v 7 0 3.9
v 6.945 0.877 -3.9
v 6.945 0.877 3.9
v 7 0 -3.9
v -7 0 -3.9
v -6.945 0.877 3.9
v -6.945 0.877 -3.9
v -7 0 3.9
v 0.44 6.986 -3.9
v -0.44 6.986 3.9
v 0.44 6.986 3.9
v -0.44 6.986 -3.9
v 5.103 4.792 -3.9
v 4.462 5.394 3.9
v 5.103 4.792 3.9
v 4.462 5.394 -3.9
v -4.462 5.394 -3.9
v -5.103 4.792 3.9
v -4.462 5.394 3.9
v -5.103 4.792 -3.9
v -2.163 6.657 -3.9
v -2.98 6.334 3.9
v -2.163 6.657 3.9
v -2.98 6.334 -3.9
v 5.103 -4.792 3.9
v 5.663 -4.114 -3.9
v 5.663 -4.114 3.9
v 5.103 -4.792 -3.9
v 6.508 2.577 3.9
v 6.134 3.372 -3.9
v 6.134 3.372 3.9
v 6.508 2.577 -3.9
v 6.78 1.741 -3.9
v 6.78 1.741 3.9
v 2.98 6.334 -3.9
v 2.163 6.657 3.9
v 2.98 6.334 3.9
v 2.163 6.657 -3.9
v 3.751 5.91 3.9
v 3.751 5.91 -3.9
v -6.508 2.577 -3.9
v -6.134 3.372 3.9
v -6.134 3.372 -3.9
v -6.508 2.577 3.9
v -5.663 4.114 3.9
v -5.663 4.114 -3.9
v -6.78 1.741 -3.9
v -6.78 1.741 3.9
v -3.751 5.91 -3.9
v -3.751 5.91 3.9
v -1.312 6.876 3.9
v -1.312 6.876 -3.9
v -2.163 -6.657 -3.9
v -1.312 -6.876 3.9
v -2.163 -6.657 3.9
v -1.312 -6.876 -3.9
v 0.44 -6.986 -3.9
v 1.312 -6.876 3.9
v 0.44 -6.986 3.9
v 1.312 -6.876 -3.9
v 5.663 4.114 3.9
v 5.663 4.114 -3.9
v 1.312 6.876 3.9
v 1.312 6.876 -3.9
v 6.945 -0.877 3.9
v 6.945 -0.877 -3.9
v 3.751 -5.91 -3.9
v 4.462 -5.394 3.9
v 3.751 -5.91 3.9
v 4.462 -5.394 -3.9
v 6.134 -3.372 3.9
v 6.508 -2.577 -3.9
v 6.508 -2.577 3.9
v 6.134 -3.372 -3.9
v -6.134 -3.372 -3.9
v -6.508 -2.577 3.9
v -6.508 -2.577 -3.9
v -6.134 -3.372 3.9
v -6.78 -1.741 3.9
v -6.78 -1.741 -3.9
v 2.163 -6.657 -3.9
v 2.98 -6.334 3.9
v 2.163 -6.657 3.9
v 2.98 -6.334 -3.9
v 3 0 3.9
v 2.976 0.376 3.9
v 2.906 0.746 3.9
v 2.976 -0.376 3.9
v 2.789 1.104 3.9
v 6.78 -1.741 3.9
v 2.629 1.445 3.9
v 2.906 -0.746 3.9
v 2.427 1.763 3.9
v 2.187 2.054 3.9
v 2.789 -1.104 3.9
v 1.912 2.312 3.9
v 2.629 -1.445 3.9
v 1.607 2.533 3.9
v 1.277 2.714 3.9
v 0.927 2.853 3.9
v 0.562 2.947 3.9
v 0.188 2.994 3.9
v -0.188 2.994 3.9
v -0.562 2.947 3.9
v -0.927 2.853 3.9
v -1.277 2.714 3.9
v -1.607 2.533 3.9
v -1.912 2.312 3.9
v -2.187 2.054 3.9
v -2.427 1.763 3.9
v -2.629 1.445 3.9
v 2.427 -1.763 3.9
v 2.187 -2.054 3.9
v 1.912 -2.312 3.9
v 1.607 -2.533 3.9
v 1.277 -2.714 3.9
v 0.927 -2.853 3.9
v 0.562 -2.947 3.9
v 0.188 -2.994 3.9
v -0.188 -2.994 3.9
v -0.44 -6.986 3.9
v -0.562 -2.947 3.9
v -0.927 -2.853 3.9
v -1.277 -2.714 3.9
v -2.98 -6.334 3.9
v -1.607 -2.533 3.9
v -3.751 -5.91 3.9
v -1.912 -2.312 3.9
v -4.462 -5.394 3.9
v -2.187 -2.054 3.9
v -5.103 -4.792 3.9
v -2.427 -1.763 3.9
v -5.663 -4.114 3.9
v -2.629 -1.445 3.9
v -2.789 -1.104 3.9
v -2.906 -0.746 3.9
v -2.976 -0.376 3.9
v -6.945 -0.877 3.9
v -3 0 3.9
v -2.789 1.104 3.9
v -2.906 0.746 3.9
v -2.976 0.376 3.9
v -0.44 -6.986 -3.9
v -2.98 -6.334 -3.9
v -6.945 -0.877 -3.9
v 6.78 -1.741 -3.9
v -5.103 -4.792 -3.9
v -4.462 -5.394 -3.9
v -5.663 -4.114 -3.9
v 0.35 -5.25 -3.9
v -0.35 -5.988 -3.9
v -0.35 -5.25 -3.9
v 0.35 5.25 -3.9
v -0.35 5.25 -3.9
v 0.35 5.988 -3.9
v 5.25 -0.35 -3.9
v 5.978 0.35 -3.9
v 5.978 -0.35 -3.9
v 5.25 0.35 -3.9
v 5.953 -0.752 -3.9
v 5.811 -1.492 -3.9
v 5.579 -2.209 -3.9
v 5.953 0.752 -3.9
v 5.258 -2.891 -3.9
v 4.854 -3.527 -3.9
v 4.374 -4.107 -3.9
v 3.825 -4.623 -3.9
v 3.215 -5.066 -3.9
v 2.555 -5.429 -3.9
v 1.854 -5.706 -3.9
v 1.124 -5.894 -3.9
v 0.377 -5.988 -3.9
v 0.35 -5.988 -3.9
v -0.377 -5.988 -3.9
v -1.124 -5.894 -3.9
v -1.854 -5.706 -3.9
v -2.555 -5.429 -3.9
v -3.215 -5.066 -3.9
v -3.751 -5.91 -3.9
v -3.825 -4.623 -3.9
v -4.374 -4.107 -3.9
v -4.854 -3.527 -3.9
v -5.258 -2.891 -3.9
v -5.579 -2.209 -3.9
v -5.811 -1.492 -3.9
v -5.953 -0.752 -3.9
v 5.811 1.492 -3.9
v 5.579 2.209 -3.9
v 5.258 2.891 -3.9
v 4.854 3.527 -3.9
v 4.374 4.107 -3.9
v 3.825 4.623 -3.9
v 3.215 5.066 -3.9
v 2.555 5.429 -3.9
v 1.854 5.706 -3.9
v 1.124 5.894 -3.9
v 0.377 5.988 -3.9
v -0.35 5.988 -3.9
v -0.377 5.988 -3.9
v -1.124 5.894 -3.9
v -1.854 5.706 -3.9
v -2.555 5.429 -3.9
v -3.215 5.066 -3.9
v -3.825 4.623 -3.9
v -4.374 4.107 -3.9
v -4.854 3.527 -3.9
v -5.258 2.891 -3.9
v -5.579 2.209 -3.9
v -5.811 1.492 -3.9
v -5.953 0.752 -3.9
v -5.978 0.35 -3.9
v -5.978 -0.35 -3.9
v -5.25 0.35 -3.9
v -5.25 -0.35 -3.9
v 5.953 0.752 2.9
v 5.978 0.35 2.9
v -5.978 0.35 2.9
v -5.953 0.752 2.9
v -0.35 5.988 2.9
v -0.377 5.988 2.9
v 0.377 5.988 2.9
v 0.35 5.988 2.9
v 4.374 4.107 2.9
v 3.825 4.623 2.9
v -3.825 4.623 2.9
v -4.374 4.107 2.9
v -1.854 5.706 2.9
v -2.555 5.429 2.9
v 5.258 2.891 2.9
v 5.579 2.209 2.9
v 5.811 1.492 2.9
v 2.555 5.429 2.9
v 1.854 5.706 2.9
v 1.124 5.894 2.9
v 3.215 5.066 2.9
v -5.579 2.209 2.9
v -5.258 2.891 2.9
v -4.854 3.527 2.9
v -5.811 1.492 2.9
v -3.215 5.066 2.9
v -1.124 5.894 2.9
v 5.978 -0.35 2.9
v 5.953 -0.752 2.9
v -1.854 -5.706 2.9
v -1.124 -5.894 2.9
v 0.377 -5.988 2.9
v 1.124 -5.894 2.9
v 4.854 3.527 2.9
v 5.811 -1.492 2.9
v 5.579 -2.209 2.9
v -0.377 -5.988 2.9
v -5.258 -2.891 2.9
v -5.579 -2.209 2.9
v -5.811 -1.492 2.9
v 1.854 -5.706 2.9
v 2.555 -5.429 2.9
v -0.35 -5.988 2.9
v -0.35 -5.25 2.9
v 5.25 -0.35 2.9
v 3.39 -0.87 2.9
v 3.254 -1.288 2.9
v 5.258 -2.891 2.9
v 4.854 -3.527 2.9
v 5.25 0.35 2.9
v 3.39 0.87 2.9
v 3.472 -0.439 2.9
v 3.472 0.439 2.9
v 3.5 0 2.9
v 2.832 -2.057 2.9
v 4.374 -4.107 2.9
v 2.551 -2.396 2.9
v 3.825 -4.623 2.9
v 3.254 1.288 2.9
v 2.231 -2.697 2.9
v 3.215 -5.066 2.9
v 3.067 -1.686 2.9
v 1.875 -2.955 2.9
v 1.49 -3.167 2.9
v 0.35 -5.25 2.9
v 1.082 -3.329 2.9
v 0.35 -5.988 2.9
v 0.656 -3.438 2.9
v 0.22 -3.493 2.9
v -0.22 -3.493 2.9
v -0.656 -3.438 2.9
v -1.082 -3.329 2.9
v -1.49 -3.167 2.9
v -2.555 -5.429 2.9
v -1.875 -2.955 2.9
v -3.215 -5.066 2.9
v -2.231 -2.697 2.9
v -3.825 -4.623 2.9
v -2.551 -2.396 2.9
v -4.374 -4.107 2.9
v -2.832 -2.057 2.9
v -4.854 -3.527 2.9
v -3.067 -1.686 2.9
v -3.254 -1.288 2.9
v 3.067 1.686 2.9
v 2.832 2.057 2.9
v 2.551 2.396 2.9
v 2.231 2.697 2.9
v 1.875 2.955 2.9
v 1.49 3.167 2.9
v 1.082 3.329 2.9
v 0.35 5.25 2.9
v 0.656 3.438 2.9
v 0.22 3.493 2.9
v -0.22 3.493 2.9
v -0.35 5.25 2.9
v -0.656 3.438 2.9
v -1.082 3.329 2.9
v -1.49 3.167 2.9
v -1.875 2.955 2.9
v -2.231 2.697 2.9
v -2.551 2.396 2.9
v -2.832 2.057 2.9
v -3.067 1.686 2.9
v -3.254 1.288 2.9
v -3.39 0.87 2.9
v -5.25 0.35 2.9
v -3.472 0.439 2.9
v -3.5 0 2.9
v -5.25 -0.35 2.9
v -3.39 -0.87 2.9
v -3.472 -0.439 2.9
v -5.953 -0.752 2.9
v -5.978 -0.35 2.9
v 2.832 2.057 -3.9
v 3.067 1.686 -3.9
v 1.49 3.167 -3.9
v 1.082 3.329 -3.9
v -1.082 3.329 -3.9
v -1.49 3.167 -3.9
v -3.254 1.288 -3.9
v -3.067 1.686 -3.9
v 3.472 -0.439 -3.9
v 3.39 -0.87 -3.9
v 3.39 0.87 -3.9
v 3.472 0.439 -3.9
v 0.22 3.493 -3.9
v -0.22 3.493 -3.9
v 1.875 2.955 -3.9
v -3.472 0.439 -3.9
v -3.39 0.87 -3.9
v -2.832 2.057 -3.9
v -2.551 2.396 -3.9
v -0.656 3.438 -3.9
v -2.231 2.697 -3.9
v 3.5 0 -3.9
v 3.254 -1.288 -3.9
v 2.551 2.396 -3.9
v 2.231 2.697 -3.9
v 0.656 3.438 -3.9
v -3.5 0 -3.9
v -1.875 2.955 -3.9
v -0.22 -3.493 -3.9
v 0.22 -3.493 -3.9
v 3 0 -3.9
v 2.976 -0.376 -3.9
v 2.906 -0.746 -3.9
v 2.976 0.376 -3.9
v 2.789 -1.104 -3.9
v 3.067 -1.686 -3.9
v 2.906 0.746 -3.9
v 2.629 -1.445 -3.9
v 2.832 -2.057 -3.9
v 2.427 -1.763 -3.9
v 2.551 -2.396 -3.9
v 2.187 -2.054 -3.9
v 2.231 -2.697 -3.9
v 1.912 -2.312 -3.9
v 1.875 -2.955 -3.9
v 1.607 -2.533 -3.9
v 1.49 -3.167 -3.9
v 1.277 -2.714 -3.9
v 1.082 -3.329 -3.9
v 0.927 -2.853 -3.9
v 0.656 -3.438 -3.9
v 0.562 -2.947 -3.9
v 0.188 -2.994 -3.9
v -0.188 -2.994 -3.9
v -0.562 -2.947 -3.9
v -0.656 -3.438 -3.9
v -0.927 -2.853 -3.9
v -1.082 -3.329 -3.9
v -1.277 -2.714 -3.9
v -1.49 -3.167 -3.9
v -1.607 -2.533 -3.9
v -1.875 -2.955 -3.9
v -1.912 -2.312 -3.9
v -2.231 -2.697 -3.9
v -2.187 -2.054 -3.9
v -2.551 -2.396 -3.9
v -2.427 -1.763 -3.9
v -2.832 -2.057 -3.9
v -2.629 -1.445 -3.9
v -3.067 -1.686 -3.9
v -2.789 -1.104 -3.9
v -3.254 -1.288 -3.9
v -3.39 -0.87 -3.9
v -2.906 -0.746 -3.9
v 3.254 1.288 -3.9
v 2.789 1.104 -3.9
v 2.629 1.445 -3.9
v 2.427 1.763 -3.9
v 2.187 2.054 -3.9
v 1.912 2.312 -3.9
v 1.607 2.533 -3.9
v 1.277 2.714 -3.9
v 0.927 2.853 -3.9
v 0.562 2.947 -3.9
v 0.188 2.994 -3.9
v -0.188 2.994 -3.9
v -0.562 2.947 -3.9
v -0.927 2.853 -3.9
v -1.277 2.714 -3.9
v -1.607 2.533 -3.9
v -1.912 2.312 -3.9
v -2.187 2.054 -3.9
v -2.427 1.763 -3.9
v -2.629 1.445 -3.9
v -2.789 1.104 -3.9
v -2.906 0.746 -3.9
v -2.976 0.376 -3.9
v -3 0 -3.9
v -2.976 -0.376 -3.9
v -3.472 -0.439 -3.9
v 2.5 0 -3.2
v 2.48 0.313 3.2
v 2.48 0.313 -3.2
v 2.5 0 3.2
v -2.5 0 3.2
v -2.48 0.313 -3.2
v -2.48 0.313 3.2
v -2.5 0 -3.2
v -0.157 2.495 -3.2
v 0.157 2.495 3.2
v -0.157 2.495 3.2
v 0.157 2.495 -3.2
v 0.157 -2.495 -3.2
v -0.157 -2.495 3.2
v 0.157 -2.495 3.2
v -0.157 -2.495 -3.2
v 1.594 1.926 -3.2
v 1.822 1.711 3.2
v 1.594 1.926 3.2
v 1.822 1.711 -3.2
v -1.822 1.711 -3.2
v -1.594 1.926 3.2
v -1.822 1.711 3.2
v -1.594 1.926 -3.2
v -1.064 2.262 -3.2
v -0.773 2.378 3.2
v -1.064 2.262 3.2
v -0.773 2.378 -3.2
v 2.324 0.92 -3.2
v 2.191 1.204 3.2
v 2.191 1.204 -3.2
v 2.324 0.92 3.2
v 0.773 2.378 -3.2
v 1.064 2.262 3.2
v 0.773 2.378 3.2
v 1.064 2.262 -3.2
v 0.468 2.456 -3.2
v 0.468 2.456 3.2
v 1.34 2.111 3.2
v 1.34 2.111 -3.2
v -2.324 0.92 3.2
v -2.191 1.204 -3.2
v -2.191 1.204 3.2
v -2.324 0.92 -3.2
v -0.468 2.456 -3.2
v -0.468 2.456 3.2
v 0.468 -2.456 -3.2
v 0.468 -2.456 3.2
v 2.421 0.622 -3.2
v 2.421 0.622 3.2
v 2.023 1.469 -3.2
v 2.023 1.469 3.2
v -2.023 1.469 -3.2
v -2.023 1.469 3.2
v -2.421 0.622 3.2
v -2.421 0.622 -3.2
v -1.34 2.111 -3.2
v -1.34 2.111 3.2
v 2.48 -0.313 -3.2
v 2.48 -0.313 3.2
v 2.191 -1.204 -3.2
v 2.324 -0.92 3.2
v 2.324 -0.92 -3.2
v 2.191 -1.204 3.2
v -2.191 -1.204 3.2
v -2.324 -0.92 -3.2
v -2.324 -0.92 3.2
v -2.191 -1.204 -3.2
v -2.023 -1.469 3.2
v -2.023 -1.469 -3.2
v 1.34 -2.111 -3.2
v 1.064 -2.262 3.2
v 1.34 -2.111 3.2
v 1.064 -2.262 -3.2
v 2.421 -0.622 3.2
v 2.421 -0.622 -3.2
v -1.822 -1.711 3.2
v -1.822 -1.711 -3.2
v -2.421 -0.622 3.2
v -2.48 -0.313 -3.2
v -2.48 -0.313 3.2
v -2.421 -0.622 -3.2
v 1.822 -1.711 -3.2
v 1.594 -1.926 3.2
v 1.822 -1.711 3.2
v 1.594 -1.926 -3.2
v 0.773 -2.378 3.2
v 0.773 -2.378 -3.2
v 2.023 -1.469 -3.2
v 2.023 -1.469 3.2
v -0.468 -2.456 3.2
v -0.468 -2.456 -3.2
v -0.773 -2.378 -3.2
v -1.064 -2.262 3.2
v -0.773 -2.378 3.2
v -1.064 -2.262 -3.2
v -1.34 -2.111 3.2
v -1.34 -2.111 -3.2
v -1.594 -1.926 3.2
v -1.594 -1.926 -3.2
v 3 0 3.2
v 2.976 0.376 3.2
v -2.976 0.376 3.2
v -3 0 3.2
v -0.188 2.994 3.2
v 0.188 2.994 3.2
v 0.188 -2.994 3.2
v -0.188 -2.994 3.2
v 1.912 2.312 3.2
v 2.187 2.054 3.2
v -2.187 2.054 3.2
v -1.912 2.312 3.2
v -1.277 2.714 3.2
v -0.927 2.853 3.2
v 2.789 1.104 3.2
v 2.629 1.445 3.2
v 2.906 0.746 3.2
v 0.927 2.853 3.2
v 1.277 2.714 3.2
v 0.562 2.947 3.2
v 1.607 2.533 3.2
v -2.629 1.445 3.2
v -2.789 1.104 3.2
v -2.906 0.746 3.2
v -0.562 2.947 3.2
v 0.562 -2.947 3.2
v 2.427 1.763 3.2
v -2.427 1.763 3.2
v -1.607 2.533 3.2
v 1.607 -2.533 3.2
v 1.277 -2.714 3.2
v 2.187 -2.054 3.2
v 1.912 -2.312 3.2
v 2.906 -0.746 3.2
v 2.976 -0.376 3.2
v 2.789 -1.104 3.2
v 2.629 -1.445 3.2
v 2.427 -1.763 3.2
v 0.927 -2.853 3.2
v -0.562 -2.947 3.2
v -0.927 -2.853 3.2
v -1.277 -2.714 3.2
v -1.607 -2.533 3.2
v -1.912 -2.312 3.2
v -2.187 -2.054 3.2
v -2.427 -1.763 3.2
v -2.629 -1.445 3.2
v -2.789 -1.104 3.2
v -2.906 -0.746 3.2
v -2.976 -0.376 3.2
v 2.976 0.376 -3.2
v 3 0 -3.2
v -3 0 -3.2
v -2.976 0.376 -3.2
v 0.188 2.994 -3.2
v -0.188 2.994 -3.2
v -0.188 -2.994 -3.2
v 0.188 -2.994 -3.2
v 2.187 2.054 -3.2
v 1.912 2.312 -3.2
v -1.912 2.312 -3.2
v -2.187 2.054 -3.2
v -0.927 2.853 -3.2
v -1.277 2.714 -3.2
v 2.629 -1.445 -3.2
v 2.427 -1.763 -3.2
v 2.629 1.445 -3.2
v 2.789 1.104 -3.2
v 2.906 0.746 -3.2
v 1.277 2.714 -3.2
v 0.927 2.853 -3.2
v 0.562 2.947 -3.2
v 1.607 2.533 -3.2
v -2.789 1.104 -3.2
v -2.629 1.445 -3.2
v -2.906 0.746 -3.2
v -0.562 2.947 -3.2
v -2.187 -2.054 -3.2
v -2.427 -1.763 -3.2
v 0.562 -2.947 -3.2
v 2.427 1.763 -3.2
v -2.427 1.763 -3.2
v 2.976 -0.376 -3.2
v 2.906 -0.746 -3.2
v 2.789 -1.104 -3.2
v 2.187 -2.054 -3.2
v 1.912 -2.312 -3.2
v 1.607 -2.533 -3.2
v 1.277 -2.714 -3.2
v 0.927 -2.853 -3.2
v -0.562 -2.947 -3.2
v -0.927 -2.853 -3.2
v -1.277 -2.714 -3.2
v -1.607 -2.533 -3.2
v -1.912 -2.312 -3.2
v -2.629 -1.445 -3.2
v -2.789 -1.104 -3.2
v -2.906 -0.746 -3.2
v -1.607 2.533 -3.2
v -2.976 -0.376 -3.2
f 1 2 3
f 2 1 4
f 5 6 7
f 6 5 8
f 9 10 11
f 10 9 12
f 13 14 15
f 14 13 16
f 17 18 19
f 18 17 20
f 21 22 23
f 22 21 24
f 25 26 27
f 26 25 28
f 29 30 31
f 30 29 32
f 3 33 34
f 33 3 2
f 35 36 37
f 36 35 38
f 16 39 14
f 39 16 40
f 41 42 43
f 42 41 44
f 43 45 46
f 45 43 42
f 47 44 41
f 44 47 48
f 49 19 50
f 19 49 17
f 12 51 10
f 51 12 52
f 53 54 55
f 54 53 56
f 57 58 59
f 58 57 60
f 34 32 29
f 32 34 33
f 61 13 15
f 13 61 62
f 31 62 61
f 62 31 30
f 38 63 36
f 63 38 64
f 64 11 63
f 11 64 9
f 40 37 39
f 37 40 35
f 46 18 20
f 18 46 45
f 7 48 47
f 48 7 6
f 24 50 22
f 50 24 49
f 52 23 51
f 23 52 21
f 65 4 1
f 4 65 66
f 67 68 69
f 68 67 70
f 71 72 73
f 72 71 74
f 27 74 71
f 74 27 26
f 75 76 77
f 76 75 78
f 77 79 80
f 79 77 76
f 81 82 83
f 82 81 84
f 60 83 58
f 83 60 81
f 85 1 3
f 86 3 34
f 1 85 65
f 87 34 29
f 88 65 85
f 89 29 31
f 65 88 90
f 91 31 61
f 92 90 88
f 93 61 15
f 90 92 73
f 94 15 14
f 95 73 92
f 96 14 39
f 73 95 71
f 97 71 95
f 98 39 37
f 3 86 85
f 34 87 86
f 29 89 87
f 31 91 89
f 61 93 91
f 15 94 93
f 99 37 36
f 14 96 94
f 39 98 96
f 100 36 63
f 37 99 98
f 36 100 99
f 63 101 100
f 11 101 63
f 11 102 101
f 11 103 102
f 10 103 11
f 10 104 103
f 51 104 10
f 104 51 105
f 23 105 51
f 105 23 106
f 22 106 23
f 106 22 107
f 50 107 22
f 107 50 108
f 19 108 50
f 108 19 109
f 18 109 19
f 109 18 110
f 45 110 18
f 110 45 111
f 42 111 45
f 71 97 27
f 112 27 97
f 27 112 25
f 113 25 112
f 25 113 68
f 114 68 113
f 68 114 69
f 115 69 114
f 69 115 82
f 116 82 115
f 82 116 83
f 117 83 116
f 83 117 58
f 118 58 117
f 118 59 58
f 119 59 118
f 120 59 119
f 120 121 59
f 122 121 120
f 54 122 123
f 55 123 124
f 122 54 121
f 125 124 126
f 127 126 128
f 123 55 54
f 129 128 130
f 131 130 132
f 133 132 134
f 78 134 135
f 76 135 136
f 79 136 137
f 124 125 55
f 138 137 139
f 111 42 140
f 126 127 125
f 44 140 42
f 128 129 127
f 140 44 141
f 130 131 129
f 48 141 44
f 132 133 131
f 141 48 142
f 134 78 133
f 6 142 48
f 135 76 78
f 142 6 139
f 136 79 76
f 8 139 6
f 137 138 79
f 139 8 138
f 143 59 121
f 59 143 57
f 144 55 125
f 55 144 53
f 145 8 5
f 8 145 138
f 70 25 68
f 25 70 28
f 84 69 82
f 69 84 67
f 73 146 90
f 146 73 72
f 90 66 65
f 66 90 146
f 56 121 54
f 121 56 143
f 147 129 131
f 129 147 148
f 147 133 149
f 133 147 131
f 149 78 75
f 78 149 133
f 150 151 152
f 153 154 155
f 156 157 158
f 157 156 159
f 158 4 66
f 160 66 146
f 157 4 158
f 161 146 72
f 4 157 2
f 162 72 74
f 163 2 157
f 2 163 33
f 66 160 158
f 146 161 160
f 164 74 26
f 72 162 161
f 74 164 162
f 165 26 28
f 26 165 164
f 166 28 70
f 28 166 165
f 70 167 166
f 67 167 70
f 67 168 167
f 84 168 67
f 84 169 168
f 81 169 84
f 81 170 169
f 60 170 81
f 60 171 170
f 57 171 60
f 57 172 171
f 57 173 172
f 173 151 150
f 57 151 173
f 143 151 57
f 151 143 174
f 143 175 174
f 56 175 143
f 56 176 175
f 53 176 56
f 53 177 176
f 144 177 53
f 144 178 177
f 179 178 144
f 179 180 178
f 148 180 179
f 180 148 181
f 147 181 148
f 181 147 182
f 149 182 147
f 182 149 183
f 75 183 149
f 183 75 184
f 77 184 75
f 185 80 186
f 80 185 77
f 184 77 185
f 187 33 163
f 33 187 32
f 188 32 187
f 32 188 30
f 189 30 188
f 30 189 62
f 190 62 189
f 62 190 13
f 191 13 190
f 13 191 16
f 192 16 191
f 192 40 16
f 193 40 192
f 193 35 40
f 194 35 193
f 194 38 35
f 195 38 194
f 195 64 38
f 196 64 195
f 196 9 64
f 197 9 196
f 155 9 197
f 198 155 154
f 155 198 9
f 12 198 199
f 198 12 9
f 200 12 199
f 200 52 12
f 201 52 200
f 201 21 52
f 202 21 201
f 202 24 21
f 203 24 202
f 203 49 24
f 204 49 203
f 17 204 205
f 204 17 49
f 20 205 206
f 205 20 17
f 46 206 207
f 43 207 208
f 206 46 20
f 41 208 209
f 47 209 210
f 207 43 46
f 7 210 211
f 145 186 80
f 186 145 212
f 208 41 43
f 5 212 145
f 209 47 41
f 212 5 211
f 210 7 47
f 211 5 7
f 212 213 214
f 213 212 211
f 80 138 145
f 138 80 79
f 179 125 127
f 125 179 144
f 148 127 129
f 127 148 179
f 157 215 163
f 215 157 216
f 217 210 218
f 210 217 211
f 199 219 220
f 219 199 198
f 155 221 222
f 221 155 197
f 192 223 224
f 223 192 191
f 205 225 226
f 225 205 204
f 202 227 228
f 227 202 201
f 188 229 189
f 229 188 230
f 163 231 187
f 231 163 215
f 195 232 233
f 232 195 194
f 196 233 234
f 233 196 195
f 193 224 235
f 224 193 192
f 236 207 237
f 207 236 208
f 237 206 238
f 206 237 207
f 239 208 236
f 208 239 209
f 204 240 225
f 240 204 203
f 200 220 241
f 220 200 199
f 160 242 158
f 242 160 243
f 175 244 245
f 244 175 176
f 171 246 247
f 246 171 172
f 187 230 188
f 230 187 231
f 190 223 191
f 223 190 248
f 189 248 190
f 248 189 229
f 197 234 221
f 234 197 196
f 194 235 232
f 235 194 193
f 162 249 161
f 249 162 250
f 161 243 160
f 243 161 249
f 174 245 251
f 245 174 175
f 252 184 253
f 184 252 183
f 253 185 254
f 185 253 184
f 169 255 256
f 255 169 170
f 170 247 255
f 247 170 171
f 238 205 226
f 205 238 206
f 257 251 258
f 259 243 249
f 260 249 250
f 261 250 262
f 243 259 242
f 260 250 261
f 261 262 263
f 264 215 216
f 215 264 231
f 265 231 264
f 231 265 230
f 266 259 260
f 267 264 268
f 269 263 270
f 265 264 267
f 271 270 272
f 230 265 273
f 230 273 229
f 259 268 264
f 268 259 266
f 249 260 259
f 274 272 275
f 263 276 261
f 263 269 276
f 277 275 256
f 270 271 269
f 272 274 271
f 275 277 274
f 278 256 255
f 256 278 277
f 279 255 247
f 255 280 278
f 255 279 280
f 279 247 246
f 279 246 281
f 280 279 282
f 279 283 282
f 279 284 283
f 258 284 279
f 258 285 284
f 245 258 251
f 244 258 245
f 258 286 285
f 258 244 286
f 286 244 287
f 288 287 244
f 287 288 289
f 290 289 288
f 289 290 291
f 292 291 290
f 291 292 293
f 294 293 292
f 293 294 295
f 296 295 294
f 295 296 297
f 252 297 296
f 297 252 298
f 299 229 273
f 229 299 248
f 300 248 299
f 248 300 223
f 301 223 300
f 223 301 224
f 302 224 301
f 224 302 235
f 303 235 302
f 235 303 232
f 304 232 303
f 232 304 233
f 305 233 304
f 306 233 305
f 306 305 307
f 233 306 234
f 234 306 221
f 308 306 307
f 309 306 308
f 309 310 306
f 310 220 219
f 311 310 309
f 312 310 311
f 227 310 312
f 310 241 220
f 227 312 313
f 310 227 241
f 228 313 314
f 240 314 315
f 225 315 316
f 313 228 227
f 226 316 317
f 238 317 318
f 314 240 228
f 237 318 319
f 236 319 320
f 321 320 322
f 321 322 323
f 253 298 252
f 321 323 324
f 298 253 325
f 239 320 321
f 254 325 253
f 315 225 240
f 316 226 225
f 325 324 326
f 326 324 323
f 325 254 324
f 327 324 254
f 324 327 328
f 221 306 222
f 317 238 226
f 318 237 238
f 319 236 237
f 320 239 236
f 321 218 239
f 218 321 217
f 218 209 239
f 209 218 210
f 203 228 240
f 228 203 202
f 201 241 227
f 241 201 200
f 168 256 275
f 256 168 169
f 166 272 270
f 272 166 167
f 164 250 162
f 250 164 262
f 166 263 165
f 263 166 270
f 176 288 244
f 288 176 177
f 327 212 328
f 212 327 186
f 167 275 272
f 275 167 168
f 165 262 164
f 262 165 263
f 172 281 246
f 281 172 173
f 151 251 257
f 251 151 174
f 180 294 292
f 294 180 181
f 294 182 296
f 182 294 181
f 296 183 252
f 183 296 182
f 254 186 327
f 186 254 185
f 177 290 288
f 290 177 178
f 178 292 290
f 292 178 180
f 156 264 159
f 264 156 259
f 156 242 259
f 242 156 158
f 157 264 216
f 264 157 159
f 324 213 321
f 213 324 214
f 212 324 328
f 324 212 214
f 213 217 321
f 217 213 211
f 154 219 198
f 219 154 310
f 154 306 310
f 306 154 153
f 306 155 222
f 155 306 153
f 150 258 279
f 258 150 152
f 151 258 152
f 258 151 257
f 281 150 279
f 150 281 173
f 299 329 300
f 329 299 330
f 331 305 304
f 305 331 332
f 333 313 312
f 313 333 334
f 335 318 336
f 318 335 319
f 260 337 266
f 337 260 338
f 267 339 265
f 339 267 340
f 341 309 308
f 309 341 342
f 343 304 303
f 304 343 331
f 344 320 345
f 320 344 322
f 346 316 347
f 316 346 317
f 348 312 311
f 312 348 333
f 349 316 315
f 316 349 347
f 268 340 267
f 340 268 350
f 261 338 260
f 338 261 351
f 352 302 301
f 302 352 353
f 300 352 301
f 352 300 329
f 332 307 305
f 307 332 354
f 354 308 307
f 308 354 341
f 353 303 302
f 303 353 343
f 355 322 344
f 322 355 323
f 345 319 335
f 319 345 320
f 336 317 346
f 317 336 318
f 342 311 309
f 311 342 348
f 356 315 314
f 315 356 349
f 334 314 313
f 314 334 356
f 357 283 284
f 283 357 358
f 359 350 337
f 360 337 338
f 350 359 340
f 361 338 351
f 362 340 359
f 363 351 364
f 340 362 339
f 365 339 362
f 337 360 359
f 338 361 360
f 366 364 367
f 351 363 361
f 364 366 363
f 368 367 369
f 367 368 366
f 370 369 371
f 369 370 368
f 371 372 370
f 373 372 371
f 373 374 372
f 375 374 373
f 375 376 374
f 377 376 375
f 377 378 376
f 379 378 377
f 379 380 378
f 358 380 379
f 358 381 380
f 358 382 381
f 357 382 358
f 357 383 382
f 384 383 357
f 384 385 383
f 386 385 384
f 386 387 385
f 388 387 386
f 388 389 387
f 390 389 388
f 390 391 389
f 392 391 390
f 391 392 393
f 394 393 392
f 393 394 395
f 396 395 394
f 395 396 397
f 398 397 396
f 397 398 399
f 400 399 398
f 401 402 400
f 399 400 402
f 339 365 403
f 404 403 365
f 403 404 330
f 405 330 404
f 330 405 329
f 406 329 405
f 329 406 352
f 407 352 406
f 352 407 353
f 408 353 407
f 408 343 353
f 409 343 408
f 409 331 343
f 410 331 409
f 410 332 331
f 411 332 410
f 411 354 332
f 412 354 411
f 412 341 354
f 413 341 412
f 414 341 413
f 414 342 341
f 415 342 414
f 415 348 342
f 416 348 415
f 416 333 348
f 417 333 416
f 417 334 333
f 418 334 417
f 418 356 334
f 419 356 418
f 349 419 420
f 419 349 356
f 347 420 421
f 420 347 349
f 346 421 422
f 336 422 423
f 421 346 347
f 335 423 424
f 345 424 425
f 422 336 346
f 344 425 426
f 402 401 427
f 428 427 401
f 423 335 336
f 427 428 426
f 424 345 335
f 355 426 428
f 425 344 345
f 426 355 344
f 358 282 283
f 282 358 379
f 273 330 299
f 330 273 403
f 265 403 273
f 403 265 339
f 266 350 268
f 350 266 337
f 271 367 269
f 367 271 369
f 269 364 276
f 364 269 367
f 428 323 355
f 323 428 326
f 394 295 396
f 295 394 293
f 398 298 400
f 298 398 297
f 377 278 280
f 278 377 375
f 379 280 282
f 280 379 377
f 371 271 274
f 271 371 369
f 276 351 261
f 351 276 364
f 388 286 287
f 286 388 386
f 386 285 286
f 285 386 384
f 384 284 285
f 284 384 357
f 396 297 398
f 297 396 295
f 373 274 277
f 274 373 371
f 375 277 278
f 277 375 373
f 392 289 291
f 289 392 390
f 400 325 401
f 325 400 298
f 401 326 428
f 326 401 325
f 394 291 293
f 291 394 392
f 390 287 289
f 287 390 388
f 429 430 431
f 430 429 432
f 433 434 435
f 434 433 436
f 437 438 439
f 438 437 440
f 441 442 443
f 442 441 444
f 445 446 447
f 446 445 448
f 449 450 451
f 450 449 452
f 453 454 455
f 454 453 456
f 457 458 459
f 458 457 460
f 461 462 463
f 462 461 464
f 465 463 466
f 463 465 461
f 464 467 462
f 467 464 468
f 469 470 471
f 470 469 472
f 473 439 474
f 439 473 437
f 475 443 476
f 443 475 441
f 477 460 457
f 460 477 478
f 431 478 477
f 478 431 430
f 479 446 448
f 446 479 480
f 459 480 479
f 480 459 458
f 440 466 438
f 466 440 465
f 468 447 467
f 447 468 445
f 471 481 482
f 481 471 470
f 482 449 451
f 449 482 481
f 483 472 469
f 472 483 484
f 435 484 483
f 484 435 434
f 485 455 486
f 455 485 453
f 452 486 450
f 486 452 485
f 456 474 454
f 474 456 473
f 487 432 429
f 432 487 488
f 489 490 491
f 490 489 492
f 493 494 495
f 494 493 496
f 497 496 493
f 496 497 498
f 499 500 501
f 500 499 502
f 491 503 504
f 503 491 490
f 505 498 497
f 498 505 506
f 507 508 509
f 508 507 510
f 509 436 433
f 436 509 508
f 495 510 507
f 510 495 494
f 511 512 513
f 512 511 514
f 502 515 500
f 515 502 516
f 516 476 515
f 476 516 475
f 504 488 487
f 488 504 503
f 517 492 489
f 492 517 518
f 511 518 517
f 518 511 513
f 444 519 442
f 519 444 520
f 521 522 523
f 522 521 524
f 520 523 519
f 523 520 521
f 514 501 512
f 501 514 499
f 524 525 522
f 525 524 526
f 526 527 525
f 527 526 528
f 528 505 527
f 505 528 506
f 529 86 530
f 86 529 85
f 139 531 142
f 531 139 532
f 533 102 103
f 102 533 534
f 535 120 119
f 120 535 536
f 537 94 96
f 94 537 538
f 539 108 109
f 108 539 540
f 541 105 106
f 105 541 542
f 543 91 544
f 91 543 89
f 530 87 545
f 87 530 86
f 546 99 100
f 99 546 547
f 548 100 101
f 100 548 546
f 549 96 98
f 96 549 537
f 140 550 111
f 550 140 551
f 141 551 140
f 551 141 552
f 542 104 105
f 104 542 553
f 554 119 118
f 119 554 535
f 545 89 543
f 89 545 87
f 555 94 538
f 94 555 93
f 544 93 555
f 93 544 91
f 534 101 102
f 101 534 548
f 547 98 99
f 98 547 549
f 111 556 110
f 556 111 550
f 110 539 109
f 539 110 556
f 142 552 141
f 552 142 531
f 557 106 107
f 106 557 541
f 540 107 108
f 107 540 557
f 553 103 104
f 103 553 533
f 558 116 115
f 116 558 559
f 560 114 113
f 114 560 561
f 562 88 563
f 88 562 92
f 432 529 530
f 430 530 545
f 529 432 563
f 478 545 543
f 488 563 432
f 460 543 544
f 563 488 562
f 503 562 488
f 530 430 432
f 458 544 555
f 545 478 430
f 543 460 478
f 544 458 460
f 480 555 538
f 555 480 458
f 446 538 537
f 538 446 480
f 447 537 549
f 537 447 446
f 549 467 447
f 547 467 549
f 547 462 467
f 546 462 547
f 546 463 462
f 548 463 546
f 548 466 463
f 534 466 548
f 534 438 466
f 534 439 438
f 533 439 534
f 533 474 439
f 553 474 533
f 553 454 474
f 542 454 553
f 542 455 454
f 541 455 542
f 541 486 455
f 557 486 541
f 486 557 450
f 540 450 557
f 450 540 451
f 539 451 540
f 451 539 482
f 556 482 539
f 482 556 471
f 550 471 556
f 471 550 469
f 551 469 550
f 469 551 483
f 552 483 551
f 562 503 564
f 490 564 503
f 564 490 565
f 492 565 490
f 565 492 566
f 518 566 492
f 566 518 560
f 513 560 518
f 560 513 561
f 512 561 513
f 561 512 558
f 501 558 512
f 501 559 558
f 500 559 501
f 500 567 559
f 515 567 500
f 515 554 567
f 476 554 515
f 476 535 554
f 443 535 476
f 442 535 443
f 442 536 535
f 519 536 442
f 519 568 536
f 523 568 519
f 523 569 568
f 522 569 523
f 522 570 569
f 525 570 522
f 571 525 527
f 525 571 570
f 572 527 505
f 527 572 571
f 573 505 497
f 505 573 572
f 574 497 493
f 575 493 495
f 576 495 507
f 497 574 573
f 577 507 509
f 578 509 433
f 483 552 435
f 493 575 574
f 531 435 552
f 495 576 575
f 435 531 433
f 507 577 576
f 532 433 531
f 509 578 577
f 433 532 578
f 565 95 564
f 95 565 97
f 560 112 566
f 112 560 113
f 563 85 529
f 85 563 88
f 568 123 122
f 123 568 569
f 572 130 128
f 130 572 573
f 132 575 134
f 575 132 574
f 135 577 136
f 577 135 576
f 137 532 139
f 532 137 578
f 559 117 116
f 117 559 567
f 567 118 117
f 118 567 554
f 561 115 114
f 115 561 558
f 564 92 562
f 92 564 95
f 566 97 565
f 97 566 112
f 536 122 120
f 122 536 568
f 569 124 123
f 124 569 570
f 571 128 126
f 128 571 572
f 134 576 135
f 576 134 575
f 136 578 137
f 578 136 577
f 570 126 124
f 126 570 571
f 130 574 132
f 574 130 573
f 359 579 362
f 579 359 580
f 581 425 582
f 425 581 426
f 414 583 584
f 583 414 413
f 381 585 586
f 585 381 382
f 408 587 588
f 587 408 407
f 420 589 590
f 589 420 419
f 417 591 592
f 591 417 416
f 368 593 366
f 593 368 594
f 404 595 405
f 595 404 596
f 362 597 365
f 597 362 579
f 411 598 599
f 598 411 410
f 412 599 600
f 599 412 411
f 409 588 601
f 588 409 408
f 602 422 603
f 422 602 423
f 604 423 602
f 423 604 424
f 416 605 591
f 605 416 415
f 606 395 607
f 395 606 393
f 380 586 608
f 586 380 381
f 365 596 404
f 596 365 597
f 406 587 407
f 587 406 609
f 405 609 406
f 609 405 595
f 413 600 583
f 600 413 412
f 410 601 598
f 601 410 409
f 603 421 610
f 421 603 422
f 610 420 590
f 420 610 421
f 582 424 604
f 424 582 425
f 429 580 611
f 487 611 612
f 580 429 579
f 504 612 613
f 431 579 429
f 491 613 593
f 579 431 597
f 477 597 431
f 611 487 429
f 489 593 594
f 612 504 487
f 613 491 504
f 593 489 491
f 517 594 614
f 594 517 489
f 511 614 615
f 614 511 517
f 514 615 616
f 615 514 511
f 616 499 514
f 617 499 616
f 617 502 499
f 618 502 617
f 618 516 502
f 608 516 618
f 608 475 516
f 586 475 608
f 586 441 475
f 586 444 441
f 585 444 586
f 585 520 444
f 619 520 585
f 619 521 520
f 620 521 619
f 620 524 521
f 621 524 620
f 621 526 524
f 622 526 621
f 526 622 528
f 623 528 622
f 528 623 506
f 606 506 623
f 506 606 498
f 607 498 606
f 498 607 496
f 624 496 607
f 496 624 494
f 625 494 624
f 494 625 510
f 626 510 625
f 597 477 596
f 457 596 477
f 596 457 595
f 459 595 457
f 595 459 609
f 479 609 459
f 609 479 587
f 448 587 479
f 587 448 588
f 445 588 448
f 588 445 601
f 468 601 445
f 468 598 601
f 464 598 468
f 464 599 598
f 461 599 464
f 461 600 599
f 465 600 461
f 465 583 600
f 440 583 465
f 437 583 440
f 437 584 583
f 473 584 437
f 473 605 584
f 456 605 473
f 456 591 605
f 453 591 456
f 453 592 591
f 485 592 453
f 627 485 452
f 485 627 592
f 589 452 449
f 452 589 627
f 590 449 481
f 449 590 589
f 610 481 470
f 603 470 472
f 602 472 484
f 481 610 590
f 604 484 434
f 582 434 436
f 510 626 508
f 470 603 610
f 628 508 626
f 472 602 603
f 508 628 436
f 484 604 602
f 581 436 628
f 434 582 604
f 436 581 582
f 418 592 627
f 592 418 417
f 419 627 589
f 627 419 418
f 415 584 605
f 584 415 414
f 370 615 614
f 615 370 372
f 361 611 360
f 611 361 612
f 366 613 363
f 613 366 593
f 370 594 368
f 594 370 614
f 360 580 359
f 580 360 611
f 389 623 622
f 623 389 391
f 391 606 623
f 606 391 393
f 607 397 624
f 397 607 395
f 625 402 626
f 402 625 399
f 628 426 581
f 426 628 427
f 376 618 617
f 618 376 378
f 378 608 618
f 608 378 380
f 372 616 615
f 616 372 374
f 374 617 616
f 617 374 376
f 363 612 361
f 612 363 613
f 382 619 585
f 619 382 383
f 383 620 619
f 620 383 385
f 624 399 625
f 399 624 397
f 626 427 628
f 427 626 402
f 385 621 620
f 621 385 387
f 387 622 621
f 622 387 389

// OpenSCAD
total_diameter = 14.0;
total_width = 7.8;
wall_thickness = 1.0;
dog_width = 0.8;
dog_intrusion = 0.7;
axle_hole_diameter = 5.0;
axle_inset_width = 1.0 / 2;
axle_inset_depth = 0.7;

/* [Hidden] */
$fn = 50;

clutch();

module clutch()
{
    interior_diameter = total_diameter - (2 * wall_thickness); 

    axle_hole_outer_diameter = axle_hole_diameter + (wall_thickness * 2);

    difference()
    {
        union()
        {
            hollow_cylinder();
            cylinder(h = total_width, r = axle_hole_outer_diameter / 2, center = true);
            dogs();
        }

        // Axle hole
        cylinder(h = total_width, r = axle_hole_diameter / 2, center = true);

        // Axle inset
        translate(v = [0, 0, (total_width / 2) - (axle_inset_depth / 2)]) 
        cylinder(h = axle_inset_depth, r = (axle_hole_diameter / 2) + axle_inset_width, center = true);
        translate(v = [0, 0, -(total_width / 2) + (axle_inset_depth / 2)]) 
        cylinder(h = axle_inset_depth, r = (axle_hole_diameter / 2) + axle_inset_width, center = true);
    }

    module hollow_cylinder()
    {
        difference()
        {
            cylinder(h = total_width, r = total_diameter / 2, center = true);
            translate(v = [0, 0, -wall_thickness / 2]) 
            cylinder(h = total_width - wall_thickness, r = interior_diameter / 2, center = true);
        }
    }

    module dogs() 
    {
        offset = (interior_diameter / 2) - (dog_intrusion / 2);

        union()
        {
            translate(v = [ offset, 0, 0]) dog();
            translate(v = [-offset, 0, 0]) dog();
            translate(v = [0,  offset, 0]) rotate(a = 90) dog();
            translate(v = [0, -offset, 0]) rotate(a = 90) dog();
        }

        module dog()
        {
            cube([dog_width, dog_intrusion, total_width], center = true);
        }
    }

    module axle_hole(length = length)
    {
        outer_diameter = axle_hole_diameter + (wall_thickness * 2);

        difference()
        {
            cylinder(h = length, r = outer_diameter / 2, center = true);
            cylinder(h = length, r = axle_hole_diameter / 2, center = true);
        }
    }

}

function clutch_outer_diameter() = total_diameter;
